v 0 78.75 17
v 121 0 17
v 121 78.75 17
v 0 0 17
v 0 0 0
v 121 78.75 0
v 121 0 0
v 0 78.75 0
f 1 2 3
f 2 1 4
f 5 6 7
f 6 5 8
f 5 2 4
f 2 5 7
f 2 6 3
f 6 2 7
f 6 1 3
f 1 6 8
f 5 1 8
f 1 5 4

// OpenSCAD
// Opentrons Flex Tip Rack Lid
// loadName: opentrons_flex_tiprack_lid
// Auto-generated by labware_to_stl.py from Opentrons V2 labware definition

$fn = 64;

difference() {
    // ── Labware body ──────────────────────────────────────────────
    cube([121.0000, 78.7500, 17.0000]);

    // ── Well cutouts ──────────────────────────────────────────────
}
